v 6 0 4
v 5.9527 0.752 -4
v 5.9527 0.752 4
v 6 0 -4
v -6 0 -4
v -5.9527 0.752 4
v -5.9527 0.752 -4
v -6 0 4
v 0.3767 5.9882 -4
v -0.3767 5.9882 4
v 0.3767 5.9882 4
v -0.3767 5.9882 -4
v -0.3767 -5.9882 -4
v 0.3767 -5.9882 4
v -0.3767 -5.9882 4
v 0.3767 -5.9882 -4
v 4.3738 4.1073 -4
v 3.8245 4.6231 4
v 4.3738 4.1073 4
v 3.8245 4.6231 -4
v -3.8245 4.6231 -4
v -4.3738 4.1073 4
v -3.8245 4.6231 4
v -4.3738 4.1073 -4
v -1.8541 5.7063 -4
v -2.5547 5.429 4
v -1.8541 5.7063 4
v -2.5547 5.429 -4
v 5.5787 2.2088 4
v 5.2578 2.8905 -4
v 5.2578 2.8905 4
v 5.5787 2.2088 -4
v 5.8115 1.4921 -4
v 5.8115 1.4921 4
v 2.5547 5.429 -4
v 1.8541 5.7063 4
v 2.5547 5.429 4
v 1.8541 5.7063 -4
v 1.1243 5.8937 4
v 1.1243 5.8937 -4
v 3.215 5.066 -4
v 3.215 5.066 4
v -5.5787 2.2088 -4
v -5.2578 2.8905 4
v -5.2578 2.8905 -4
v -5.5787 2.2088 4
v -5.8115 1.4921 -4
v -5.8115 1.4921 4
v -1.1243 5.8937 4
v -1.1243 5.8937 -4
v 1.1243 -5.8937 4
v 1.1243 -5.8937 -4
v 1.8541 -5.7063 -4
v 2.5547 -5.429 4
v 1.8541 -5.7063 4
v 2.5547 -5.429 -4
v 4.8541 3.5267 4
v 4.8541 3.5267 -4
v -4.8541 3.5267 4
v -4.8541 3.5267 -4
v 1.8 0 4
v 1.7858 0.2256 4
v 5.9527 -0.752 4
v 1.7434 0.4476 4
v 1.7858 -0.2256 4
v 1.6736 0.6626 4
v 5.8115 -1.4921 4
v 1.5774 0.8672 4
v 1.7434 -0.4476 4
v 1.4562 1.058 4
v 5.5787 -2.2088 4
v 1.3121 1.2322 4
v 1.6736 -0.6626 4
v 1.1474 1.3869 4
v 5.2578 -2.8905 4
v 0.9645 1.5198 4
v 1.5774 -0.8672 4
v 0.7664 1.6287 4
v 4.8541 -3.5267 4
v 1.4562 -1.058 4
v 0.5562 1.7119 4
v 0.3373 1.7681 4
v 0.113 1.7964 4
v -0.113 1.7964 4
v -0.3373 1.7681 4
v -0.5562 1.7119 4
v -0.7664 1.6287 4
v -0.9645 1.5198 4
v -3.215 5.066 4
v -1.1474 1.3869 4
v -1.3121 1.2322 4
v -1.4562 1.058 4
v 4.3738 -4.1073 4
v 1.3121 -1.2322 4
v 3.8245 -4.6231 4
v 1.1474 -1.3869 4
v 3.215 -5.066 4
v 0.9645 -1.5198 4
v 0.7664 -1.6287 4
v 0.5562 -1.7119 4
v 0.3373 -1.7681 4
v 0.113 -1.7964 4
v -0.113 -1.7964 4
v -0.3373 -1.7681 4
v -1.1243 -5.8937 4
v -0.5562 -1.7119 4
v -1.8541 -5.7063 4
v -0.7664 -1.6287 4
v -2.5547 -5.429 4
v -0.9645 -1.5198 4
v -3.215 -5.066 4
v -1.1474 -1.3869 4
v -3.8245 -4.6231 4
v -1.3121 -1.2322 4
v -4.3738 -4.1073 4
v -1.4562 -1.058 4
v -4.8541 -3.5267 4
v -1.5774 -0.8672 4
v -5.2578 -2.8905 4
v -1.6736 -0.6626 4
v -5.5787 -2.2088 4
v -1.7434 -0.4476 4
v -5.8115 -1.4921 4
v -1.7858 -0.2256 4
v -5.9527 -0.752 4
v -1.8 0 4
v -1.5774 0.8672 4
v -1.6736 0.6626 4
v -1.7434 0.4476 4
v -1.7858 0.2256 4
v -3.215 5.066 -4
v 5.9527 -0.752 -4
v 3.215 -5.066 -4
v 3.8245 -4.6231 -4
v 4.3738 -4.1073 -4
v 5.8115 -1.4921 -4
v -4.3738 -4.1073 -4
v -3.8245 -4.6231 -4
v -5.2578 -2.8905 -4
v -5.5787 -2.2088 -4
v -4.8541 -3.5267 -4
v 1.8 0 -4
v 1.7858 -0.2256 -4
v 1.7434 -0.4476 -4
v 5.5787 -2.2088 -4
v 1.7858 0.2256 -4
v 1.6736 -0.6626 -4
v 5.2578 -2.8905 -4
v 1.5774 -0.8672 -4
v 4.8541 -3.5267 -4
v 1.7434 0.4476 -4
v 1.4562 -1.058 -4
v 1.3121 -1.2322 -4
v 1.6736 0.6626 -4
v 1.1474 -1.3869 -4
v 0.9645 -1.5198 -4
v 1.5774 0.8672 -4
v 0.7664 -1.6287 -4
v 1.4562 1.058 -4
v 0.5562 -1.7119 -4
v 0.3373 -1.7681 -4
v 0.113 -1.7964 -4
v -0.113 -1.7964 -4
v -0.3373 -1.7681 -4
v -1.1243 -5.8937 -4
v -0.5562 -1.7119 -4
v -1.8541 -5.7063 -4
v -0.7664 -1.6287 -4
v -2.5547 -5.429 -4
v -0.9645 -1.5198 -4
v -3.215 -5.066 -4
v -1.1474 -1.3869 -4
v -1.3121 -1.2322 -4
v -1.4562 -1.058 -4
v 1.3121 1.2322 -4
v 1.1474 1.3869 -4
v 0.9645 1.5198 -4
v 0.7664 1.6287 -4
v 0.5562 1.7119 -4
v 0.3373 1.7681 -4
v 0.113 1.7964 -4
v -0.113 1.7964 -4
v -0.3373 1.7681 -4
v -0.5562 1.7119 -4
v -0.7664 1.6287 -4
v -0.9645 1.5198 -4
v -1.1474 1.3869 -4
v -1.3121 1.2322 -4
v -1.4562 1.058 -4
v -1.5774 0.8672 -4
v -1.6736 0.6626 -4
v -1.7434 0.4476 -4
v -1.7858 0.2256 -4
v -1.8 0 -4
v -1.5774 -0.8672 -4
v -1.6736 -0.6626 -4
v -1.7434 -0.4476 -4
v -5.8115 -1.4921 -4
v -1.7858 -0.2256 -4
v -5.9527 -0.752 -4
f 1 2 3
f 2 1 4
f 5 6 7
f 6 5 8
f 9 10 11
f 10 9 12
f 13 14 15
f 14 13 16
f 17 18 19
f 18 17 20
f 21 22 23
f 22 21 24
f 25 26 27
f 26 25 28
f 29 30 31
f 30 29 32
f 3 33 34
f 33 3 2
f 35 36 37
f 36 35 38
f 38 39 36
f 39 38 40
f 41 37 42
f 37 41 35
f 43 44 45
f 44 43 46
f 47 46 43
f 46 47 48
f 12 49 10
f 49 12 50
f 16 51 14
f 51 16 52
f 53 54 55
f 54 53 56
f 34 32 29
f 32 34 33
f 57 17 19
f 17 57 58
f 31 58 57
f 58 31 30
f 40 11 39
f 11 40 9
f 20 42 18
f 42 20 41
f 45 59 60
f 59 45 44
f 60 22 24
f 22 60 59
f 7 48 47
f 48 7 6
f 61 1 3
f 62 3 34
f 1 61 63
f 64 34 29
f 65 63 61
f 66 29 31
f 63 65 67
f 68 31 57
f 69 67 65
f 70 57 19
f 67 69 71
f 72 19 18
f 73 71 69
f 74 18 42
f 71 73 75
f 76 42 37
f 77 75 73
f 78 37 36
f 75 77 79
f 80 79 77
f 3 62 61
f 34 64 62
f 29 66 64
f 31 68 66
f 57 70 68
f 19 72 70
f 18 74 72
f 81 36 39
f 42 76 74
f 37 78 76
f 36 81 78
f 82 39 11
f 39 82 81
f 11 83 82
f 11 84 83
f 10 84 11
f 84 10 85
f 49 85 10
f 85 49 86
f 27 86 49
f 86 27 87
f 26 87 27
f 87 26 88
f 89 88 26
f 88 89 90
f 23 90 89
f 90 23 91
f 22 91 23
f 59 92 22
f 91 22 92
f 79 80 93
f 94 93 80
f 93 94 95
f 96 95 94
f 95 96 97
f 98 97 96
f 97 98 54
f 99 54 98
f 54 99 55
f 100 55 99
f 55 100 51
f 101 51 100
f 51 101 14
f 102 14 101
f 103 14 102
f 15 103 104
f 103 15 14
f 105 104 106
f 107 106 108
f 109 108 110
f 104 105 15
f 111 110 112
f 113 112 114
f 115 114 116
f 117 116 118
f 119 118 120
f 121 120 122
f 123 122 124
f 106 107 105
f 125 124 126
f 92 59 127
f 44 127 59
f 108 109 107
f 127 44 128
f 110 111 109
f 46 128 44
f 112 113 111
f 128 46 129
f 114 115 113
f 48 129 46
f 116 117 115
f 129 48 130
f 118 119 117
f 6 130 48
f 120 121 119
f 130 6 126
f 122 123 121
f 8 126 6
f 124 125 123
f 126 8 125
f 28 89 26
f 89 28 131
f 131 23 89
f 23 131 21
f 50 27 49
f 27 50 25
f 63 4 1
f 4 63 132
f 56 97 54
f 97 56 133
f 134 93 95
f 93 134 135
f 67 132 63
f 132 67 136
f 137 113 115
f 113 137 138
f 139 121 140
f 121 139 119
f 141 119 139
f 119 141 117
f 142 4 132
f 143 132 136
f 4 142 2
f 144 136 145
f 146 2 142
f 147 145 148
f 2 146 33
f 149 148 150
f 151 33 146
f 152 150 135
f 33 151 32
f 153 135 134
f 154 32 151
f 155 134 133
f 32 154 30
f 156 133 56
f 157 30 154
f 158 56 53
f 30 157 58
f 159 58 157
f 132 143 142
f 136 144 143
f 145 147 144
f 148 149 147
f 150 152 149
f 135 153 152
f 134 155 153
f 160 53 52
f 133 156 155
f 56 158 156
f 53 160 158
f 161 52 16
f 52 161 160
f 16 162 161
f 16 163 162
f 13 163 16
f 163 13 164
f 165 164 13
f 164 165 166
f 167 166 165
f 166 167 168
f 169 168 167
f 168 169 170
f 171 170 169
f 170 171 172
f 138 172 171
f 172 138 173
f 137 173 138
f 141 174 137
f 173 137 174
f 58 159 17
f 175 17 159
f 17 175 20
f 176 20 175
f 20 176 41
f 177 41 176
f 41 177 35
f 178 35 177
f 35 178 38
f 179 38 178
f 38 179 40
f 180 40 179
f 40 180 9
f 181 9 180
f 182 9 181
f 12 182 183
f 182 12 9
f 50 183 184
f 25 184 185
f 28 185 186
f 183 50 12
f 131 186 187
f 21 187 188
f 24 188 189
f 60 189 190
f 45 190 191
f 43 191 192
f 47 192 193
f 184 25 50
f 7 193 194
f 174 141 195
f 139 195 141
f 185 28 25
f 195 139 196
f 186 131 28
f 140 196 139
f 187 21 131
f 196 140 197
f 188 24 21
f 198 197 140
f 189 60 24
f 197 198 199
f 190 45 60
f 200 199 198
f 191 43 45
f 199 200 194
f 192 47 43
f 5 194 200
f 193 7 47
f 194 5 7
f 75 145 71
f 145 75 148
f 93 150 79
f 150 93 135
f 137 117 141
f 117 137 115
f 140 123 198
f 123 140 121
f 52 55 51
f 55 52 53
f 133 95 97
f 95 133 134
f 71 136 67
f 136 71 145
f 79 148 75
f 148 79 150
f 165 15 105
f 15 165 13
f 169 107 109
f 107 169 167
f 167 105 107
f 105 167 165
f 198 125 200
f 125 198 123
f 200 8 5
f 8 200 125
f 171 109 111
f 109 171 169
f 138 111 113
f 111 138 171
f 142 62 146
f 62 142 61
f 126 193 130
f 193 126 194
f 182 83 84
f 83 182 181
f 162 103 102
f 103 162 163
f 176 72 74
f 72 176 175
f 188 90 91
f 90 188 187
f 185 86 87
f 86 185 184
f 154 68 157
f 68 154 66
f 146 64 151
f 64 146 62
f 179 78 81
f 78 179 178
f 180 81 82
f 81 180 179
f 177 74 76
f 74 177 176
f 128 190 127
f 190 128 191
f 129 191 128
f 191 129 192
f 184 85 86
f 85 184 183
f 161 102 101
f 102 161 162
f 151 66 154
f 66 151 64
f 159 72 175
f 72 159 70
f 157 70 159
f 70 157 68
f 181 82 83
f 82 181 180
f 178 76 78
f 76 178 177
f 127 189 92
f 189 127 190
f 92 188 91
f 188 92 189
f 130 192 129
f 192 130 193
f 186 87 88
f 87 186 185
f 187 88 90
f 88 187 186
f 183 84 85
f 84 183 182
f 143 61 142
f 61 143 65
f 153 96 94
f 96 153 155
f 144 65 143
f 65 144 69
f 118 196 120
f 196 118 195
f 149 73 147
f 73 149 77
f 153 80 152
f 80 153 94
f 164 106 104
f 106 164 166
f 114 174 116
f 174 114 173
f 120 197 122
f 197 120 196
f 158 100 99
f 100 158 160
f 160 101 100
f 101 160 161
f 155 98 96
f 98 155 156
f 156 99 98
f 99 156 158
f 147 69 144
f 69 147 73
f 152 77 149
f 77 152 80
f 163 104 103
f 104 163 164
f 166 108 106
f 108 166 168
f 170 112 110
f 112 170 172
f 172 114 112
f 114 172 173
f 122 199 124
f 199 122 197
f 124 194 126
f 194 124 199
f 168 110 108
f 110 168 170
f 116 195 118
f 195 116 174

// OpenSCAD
$fn = 50;


difference() {
	union() {
		translate(v = [0, 0, -4.0000000000]) {
			cylinder(h = 8, r = 6.0000000000);
		}
	}
	union() {
		translate(v = [0, 0, -100.0000000000]) {
			cylinder(h = 200, r = 1.8000000000);
		}
	}
}
